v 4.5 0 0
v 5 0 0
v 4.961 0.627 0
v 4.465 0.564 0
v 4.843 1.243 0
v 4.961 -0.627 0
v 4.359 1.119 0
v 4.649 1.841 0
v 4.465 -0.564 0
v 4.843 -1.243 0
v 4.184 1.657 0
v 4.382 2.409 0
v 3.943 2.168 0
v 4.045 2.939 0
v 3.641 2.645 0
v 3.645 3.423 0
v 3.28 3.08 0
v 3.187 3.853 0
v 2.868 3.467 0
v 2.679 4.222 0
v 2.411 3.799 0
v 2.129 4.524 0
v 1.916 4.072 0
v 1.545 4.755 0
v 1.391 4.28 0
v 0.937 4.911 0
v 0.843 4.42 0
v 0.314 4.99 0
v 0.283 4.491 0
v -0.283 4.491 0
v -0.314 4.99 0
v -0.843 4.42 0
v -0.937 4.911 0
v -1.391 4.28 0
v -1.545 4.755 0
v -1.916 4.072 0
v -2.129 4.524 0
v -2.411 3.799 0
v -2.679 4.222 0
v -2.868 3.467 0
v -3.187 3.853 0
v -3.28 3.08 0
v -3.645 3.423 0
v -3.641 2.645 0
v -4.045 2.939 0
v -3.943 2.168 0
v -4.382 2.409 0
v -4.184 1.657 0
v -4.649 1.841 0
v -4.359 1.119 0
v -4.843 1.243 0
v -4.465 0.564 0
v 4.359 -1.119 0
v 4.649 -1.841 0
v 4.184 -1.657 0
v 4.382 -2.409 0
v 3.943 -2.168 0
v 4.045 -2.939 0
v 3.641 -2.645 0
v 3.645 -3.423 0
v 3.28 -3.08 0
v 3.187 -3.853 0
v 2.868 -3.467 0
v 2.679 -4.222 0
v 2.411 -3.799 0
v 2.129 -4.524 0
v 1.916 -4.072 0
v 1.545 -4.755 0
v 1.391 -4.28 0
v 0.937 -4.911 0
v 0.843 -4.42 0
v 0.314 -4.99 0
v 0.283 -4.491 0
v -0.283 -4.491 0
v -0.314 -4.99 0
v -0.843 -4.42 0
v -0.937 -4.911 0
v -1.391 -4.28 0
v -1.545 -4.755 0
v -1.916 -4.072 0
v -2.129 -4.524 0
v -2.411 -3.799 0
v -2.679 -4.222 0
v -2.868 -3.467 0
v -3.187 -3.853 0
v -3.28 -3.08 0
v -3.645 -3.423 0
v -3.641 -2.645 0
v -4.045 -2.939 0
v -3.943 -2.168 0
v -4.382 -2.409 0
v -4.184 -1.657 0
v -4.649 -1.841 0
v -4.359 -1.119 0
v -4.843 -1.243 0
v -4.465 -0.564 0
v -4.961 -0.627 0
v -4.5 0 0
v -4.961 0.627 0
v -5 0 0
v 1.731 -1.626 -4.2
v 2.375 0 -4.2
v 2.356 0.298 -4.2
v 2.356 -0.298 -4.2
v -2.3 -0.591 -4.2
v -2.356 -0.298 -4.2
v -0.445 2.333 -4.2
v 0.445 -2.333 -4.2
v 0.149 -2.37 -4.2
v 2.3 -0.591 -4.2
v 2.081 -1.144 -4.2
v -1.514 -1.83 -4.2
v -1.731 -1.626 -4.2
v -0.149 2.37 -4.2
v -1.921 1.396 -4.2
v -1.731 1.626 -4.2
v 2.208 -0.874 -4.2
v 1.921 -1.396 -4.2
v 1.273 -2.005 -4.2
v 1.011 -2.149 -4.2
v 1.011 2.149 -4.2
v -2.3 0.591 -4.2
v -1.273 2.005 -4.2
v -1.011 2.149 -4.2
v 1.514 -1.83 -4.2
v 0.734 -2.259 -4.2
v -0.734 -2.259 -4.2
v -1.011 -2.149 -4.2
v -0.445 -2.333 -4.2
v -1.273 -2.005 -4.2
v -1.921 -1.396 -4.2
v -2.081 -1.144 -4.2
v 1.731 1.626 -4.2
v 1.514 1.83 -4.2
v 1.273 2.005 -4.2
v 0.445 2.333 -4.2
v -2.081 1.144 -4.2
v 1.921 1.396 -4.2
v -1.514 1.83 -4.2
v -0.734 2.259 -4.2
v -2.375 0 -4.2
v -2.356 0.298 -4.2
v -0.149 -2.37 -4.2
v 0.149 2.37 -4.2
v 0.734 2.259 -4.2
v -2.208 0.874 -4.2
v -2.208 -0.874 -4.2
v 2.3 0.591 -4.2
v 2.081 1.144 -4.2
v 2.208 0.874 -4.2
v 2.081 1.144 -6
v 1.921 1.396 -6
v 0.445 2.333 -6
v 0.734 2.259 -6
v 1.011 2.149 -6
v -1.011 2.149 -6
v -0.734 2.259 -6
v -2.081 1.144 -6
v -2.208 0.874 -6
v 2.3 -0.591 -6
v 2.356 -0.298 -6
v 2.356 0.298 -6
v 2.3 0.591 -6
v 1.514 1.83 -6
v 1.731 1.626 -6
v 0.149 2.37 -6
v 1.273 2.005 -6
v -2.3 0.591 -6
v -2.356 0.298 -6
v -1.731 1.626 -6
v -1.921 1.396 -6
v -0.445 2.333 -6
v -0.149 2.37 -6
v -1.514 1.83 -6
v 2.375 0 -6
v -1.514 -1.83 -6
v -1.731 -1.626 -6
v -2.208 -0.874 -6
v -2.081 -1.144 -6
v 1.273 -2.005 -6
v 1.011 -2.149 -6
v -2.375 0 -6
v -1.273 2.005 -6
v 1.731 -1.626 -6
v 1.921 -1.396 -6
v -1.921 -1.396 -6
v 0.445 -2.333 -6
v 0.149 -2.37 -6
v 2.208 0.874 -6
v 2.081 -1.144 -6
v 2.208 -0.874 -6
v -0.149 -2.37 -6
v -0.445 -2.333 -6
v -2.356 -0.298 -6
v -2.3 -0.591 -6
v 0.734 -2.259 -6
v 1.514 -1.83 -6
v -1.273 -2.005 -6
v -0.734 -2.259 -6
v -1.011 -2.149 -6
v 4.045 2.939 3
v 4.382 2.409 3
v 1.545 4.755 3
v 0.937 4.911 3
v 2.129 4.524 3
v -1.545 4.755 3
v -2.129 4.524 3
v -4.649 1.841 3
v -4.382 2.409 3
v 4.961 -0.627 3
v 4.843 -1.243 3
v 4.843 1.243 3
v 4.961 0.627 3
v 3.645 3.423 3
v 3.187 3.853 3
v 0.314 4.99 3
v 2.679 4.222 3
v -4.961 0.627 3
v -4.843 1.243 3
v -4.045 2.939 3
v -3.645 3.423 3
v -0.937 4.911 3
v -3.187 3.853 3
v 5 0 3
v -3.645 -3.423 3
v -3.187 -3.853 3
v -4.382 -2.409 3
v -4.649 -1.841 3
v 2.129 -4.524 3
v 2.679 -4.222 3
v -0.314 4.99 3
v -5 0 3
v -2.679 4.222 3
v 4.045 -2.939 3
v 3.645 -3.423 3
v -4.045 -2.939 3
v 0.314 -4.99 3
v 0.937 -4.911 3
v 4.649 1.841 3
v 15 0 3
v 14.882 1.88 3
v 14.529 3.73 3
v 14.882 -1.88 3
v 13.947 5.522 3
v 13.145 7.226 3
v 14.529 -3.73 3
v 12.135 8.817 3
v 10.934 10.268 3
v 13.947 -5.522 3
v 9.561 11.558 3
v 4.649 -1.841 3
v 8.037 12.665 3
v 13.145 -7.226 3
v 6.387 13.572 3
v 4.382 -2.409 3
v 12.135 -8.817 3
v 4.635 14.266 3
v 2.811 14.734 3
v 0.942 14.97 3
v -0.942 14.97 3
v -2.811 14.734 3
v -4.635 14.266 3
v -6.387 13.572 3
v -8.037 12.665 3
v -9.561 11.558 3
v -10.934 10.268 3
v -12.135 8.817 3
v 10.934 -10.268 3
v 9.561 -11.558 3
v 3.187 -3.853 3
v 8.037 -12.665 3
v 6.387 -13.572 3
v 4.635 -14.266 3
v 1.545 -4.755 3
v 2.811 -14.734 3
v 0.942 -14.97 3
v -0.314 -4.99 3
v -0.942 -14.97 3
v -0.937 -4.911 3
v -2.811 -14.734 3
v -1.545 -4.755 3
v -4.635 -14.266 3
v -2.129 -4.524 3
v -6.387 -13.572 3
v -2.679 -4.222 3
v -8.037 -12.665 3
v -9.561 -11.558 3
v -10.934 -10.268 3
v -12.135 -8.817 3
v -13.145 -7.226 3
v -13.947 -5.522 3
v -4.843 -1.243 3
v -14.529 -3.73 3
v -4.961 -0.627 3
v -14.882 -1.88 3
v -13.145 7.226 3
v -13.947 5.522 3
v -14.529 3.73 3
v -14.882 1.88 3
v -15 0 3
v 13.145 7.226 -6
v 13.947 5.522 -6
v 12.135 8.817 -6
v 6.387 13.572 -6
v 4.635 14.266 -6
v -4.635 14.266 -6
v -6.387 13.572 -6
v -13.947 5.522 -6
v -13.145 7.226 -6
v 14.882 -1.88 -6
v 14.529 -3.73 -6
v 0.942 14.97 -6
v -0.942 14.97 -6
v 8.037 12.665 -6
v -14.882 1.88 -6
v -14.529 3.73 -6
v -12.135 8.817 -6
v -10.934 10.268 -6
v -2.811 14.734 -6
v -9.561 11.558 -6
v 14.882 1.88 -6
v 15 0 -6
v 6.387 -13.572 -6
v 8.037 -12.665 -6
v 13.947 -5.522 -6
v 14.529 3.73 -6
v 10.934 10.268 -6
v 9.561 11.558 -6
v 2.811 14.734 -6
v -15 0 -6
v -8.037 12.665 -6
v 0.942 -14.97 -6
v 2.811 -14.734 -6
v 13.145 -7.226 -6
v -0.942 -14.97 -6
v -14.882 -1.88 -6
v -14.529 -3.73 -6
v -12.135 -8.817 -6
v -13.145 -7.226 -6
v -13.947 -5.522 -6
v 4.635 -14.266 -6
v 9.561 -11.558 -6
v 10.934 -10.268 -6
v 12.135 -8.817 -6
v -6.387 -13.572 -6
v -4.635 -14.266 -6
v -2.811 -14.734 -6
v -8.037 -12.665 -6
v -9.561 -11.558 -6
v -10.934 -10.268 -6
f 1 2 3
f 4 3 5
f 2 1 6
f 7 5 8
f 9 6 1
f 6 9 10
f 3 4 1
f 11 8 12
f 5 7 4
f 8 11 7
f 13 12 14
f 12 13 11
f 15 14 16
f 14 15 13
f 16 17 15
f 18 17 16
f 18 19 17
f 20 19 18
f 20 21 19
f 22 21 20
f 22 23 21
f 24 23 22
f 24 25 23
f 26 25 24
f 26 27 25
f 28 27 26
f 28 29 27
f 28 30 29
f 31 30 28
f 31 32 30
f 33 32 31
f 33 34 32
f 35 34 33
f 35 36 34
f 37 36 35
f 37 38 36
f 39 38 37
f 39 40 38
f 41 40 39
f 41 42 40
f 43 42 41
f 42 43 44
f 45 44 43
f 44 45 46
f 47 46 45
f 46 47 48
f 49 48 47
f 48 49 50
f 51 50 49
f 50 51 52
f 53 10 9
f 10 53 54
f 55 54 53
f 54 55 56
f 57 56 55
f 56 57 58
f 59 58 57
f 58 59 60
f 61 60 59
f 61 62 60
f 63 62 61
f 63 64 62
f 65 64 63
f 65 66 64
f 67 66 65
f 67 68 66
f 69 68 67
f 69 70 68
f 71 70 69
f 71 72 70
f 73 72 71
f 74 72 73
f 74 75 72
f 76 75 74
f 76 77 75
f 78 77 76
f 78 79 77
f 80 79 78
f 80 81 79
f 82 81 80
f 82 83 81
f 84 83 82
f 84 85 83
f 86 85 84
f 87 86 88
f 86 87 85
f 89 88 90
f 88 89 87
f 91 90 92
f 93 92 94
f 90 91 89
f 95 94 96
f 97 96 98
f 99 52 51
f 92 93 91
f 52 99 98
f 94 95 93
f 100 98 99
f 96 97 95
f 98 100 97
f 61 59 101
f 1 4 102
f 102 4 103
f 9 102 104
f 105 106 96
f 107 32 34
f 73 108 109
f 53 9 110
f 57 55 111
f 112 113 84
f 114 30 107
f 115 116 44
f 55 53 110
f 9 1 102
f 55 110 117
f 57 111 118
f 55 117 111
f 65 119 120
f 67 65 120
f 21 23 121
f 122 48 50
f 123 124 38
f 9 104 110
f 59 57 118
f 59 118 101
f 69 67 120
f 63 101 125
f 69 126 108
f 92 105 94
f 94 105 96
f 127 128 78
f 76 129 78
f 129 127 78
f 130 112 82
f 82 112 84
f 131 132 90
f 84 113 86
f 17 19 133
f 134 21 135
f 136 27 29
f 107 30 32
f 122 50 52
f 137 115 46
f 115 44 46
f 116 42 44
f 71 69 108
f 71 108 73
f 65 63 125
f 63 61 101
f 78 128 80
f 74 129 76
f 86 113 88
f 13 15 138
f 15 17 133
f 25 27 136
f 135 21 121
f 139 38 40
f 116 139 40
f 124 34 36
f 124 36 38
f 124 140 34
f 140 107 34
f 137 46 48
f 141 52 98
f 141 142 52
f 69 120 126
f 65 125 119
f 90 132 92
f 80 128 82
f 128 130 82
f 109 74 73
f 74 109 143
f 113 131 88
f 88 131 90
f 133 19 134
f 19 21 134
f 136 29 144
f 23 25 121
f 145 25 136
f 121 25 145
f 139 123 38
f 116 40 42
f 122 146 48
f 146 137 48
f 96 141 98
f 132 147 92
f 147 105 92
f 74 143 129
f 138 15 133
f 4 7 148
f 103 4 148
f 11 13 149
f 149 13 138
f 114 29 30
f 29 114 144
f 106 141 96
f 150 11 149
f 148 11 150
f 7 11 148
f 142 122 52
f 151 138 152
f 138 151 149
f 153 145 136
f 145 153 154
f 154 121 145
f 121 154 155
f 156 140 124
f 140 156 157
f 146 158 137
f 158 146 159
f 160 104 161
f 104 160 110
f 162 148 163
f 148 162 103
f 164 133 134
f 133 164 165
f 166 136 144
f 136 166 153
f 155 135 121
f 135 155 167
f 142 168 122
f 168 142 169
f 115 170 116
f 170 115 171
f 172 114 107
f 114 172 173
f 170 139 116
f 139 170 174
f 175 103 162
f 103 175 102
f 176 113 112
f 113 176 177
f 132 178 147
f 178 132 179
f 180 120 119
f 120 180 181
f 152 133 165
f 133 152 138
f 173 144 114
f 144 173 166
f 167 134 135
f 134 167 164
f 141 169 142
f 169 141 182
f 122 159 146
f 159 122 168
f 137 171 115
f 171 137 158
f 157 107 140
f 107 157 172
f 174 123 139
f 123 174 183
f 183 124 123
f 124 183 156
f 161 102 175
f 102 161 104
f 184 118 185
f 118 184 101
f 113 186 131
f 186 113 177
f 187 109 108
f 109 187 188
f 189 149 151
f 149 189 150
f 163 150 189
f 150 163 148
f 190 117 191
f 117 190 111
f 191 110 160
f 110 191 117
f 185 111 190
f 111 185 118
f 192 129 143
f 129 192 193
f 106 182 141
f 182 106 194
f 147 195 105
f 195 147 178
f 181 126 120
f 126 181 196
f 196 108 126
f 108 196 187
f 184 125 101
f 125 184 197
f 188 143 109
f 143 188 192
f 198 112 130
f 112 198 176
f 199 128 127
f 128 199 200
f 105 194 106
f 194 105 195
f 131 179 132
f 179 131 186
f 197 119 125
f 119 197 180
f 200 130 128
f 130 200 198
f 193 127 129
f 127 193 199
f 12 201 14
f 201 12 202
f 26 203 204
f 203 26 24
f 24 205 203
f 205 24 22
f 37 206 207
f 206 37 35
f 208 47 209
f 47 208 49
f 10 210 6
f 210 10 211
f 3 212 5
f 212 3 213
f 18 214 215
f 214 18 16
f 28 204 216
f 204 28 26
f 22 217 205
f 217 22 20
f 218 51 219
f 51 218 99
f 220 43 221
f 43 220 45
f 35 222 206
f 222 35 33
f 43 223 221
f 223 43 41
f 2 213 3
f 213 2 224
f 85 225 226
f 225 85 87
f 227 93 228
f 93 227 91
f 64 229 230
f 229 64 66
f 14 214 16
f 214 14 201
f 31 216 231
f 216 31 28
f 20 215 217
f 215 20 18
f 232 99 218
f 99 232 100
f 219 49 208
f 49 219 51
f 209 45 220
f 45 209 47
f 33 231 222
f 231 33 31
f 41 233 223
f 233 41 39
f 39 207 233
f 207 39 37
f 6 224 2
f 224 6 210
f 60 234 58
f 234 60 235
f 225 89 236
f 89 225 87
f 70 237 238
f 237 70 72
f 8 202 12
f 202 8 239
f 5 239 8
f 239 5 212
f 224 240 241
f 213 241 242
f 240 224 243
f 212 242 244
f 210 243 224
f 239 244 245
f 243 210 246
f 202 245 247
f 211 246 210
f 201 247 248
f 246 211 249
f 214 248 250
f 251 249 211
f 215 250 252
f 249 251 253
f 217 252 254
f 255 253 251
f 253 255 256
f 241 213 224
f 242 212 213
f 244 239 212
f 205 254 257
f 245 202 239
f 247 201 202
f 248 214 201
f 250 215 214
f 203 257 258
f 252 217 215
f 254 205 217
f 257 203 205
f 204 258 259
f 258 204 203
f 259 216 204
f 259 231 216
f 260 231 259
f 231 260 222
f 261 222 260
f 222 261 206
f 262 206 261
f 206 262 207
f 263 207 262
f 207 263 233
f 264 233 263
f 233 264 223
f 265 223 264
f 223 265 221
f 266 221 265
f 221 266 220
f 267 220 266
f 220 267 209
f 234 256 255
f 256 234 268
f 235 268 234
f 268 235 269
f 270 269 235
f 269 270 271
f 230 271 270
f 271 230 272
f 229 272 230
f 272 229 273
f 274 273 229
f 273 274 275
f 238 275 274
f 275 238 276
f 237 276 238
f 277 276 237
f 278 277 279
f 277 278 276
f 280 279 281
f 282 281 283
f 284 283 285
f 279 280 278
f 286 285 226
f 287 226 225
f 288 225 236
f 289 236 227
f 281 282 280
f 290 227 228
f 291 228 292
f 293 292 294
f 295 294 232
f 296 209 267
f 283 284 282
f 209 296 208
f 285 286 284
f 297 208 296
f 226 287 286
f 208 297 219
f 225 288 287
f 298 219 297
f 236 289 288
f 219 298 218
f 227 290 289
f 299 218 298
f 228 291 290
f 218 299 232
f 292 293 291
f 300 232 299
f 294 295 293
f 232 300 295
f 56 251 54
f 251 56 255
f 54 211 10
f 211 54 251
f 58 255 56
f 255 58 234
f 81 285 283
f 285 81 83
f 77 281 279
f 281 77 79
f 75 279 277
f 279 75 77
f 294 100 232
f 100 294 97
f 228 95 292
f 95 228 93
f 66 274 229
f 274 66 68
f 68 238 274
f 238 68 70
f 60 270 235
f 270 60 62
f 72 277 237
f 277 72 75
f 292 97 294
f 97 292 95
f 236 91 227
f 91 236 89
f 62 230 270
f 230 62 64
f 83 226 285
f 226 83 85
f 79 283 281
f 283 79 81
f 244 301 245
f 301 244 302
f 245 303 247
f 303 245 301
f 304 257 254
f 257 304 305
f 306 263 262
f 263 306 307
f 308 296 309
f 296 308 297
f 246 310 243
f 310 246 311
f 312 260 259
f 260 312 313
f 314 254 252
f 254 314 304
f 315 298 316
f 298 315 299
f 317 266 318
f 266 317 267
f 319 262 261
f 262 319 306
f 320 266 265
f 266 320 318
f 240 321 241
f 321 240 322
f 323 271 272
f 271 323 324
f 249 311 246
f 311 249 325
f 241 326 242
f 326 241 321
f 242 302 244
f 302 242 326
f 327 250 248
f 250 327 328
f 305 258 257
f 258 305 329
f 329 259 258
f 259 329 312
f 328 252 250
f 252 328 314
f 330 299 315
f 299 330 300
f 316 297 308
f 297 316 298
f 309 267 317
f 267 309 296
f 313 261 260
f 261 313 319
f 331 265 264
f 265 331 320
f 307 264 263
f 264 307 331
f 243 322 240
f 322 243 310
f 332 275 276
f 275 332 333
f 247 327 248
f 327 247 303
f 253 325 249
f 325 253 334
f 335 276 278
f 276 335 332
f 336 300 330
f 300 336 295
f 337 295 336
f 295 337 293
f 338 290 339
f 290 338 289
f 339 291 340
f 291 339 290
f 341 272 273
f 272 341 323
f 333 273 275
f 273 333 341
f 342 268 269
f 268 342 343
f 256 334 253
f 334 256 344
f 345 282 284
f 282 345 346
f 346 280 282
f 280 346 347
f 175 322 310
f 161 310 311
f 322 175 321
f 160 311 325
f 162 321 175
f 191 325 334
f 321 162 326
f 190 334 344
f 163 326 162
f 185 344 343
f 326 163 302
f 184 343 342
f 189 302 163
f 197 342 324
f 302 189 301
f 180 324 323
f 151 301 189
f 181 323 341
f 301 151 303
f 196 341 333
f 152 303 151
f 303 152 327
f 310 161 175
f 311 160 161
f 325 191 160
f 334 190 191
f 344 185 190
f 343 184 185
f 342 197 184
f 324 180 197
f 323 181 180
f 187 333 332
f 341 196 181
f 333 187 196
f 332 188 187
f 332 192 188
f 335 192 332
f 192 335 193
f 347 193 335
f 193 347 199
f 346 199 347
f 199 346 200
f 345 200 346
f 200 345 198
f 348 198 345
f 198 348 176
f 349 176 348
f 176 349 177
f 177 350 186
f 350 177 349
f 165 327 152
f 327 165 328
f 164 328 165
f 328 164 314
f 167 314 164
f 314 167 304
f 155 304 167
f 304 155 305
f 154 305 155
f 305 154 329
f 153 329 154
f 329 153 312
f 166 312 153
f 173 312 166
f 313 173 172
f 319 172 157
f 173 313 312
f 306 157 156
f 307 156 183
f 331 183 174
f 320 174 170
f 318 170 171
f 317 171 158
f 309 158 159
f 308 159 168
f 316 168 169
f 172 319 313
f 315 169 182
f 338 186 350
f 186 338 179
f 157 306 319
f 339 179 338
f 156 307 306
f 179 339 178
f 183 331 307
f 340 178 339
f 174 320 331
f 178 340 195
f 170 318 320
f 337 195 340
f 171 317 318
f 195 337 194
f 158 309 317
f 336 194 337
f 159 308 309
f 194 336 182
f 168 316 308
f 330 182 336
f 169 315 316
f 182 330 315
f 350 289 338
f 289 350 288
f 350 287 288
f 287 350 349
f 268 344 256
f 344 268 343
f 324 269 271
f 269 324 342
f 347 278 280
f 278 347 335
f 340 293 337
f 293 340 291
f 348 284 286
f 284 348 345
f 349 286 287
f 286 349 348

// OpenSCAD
$fn = 50;


difference() {
	union() {
		translate(v = [0, 0, -6.0000000000]) {
			cylinder(h = 9, r = 15.0000000000);
		}
	}
	union() {
		translate(v = [0, 0, 0]) {
			rotate(a = [0, 0, 0]) {
				difference() {
					union() {
						translate(v = [0, 0, -9.0000000000]) {
							cylinder(h = 9, r = 2.2500000000);
						}
						translate(v = [0, 0, -4.2000000000]) {
							cylinder(h = 4.2000000000, r1 = 2.3750000000, r2 = 4.5000000000);
						}
						translate(v = [0, 0, -9.0000000000]) {
							cylinder(h = 9, r = 2.3750000000);
						}
						translate(v = [0, 0, -9.0000000000]) {
							cylinder(h = 9, r = 2.2500000000);
						}
					}
					union();
				}
			}
		}
		#cylinder(h = 3, r = 5.0000000000);
	}
}
